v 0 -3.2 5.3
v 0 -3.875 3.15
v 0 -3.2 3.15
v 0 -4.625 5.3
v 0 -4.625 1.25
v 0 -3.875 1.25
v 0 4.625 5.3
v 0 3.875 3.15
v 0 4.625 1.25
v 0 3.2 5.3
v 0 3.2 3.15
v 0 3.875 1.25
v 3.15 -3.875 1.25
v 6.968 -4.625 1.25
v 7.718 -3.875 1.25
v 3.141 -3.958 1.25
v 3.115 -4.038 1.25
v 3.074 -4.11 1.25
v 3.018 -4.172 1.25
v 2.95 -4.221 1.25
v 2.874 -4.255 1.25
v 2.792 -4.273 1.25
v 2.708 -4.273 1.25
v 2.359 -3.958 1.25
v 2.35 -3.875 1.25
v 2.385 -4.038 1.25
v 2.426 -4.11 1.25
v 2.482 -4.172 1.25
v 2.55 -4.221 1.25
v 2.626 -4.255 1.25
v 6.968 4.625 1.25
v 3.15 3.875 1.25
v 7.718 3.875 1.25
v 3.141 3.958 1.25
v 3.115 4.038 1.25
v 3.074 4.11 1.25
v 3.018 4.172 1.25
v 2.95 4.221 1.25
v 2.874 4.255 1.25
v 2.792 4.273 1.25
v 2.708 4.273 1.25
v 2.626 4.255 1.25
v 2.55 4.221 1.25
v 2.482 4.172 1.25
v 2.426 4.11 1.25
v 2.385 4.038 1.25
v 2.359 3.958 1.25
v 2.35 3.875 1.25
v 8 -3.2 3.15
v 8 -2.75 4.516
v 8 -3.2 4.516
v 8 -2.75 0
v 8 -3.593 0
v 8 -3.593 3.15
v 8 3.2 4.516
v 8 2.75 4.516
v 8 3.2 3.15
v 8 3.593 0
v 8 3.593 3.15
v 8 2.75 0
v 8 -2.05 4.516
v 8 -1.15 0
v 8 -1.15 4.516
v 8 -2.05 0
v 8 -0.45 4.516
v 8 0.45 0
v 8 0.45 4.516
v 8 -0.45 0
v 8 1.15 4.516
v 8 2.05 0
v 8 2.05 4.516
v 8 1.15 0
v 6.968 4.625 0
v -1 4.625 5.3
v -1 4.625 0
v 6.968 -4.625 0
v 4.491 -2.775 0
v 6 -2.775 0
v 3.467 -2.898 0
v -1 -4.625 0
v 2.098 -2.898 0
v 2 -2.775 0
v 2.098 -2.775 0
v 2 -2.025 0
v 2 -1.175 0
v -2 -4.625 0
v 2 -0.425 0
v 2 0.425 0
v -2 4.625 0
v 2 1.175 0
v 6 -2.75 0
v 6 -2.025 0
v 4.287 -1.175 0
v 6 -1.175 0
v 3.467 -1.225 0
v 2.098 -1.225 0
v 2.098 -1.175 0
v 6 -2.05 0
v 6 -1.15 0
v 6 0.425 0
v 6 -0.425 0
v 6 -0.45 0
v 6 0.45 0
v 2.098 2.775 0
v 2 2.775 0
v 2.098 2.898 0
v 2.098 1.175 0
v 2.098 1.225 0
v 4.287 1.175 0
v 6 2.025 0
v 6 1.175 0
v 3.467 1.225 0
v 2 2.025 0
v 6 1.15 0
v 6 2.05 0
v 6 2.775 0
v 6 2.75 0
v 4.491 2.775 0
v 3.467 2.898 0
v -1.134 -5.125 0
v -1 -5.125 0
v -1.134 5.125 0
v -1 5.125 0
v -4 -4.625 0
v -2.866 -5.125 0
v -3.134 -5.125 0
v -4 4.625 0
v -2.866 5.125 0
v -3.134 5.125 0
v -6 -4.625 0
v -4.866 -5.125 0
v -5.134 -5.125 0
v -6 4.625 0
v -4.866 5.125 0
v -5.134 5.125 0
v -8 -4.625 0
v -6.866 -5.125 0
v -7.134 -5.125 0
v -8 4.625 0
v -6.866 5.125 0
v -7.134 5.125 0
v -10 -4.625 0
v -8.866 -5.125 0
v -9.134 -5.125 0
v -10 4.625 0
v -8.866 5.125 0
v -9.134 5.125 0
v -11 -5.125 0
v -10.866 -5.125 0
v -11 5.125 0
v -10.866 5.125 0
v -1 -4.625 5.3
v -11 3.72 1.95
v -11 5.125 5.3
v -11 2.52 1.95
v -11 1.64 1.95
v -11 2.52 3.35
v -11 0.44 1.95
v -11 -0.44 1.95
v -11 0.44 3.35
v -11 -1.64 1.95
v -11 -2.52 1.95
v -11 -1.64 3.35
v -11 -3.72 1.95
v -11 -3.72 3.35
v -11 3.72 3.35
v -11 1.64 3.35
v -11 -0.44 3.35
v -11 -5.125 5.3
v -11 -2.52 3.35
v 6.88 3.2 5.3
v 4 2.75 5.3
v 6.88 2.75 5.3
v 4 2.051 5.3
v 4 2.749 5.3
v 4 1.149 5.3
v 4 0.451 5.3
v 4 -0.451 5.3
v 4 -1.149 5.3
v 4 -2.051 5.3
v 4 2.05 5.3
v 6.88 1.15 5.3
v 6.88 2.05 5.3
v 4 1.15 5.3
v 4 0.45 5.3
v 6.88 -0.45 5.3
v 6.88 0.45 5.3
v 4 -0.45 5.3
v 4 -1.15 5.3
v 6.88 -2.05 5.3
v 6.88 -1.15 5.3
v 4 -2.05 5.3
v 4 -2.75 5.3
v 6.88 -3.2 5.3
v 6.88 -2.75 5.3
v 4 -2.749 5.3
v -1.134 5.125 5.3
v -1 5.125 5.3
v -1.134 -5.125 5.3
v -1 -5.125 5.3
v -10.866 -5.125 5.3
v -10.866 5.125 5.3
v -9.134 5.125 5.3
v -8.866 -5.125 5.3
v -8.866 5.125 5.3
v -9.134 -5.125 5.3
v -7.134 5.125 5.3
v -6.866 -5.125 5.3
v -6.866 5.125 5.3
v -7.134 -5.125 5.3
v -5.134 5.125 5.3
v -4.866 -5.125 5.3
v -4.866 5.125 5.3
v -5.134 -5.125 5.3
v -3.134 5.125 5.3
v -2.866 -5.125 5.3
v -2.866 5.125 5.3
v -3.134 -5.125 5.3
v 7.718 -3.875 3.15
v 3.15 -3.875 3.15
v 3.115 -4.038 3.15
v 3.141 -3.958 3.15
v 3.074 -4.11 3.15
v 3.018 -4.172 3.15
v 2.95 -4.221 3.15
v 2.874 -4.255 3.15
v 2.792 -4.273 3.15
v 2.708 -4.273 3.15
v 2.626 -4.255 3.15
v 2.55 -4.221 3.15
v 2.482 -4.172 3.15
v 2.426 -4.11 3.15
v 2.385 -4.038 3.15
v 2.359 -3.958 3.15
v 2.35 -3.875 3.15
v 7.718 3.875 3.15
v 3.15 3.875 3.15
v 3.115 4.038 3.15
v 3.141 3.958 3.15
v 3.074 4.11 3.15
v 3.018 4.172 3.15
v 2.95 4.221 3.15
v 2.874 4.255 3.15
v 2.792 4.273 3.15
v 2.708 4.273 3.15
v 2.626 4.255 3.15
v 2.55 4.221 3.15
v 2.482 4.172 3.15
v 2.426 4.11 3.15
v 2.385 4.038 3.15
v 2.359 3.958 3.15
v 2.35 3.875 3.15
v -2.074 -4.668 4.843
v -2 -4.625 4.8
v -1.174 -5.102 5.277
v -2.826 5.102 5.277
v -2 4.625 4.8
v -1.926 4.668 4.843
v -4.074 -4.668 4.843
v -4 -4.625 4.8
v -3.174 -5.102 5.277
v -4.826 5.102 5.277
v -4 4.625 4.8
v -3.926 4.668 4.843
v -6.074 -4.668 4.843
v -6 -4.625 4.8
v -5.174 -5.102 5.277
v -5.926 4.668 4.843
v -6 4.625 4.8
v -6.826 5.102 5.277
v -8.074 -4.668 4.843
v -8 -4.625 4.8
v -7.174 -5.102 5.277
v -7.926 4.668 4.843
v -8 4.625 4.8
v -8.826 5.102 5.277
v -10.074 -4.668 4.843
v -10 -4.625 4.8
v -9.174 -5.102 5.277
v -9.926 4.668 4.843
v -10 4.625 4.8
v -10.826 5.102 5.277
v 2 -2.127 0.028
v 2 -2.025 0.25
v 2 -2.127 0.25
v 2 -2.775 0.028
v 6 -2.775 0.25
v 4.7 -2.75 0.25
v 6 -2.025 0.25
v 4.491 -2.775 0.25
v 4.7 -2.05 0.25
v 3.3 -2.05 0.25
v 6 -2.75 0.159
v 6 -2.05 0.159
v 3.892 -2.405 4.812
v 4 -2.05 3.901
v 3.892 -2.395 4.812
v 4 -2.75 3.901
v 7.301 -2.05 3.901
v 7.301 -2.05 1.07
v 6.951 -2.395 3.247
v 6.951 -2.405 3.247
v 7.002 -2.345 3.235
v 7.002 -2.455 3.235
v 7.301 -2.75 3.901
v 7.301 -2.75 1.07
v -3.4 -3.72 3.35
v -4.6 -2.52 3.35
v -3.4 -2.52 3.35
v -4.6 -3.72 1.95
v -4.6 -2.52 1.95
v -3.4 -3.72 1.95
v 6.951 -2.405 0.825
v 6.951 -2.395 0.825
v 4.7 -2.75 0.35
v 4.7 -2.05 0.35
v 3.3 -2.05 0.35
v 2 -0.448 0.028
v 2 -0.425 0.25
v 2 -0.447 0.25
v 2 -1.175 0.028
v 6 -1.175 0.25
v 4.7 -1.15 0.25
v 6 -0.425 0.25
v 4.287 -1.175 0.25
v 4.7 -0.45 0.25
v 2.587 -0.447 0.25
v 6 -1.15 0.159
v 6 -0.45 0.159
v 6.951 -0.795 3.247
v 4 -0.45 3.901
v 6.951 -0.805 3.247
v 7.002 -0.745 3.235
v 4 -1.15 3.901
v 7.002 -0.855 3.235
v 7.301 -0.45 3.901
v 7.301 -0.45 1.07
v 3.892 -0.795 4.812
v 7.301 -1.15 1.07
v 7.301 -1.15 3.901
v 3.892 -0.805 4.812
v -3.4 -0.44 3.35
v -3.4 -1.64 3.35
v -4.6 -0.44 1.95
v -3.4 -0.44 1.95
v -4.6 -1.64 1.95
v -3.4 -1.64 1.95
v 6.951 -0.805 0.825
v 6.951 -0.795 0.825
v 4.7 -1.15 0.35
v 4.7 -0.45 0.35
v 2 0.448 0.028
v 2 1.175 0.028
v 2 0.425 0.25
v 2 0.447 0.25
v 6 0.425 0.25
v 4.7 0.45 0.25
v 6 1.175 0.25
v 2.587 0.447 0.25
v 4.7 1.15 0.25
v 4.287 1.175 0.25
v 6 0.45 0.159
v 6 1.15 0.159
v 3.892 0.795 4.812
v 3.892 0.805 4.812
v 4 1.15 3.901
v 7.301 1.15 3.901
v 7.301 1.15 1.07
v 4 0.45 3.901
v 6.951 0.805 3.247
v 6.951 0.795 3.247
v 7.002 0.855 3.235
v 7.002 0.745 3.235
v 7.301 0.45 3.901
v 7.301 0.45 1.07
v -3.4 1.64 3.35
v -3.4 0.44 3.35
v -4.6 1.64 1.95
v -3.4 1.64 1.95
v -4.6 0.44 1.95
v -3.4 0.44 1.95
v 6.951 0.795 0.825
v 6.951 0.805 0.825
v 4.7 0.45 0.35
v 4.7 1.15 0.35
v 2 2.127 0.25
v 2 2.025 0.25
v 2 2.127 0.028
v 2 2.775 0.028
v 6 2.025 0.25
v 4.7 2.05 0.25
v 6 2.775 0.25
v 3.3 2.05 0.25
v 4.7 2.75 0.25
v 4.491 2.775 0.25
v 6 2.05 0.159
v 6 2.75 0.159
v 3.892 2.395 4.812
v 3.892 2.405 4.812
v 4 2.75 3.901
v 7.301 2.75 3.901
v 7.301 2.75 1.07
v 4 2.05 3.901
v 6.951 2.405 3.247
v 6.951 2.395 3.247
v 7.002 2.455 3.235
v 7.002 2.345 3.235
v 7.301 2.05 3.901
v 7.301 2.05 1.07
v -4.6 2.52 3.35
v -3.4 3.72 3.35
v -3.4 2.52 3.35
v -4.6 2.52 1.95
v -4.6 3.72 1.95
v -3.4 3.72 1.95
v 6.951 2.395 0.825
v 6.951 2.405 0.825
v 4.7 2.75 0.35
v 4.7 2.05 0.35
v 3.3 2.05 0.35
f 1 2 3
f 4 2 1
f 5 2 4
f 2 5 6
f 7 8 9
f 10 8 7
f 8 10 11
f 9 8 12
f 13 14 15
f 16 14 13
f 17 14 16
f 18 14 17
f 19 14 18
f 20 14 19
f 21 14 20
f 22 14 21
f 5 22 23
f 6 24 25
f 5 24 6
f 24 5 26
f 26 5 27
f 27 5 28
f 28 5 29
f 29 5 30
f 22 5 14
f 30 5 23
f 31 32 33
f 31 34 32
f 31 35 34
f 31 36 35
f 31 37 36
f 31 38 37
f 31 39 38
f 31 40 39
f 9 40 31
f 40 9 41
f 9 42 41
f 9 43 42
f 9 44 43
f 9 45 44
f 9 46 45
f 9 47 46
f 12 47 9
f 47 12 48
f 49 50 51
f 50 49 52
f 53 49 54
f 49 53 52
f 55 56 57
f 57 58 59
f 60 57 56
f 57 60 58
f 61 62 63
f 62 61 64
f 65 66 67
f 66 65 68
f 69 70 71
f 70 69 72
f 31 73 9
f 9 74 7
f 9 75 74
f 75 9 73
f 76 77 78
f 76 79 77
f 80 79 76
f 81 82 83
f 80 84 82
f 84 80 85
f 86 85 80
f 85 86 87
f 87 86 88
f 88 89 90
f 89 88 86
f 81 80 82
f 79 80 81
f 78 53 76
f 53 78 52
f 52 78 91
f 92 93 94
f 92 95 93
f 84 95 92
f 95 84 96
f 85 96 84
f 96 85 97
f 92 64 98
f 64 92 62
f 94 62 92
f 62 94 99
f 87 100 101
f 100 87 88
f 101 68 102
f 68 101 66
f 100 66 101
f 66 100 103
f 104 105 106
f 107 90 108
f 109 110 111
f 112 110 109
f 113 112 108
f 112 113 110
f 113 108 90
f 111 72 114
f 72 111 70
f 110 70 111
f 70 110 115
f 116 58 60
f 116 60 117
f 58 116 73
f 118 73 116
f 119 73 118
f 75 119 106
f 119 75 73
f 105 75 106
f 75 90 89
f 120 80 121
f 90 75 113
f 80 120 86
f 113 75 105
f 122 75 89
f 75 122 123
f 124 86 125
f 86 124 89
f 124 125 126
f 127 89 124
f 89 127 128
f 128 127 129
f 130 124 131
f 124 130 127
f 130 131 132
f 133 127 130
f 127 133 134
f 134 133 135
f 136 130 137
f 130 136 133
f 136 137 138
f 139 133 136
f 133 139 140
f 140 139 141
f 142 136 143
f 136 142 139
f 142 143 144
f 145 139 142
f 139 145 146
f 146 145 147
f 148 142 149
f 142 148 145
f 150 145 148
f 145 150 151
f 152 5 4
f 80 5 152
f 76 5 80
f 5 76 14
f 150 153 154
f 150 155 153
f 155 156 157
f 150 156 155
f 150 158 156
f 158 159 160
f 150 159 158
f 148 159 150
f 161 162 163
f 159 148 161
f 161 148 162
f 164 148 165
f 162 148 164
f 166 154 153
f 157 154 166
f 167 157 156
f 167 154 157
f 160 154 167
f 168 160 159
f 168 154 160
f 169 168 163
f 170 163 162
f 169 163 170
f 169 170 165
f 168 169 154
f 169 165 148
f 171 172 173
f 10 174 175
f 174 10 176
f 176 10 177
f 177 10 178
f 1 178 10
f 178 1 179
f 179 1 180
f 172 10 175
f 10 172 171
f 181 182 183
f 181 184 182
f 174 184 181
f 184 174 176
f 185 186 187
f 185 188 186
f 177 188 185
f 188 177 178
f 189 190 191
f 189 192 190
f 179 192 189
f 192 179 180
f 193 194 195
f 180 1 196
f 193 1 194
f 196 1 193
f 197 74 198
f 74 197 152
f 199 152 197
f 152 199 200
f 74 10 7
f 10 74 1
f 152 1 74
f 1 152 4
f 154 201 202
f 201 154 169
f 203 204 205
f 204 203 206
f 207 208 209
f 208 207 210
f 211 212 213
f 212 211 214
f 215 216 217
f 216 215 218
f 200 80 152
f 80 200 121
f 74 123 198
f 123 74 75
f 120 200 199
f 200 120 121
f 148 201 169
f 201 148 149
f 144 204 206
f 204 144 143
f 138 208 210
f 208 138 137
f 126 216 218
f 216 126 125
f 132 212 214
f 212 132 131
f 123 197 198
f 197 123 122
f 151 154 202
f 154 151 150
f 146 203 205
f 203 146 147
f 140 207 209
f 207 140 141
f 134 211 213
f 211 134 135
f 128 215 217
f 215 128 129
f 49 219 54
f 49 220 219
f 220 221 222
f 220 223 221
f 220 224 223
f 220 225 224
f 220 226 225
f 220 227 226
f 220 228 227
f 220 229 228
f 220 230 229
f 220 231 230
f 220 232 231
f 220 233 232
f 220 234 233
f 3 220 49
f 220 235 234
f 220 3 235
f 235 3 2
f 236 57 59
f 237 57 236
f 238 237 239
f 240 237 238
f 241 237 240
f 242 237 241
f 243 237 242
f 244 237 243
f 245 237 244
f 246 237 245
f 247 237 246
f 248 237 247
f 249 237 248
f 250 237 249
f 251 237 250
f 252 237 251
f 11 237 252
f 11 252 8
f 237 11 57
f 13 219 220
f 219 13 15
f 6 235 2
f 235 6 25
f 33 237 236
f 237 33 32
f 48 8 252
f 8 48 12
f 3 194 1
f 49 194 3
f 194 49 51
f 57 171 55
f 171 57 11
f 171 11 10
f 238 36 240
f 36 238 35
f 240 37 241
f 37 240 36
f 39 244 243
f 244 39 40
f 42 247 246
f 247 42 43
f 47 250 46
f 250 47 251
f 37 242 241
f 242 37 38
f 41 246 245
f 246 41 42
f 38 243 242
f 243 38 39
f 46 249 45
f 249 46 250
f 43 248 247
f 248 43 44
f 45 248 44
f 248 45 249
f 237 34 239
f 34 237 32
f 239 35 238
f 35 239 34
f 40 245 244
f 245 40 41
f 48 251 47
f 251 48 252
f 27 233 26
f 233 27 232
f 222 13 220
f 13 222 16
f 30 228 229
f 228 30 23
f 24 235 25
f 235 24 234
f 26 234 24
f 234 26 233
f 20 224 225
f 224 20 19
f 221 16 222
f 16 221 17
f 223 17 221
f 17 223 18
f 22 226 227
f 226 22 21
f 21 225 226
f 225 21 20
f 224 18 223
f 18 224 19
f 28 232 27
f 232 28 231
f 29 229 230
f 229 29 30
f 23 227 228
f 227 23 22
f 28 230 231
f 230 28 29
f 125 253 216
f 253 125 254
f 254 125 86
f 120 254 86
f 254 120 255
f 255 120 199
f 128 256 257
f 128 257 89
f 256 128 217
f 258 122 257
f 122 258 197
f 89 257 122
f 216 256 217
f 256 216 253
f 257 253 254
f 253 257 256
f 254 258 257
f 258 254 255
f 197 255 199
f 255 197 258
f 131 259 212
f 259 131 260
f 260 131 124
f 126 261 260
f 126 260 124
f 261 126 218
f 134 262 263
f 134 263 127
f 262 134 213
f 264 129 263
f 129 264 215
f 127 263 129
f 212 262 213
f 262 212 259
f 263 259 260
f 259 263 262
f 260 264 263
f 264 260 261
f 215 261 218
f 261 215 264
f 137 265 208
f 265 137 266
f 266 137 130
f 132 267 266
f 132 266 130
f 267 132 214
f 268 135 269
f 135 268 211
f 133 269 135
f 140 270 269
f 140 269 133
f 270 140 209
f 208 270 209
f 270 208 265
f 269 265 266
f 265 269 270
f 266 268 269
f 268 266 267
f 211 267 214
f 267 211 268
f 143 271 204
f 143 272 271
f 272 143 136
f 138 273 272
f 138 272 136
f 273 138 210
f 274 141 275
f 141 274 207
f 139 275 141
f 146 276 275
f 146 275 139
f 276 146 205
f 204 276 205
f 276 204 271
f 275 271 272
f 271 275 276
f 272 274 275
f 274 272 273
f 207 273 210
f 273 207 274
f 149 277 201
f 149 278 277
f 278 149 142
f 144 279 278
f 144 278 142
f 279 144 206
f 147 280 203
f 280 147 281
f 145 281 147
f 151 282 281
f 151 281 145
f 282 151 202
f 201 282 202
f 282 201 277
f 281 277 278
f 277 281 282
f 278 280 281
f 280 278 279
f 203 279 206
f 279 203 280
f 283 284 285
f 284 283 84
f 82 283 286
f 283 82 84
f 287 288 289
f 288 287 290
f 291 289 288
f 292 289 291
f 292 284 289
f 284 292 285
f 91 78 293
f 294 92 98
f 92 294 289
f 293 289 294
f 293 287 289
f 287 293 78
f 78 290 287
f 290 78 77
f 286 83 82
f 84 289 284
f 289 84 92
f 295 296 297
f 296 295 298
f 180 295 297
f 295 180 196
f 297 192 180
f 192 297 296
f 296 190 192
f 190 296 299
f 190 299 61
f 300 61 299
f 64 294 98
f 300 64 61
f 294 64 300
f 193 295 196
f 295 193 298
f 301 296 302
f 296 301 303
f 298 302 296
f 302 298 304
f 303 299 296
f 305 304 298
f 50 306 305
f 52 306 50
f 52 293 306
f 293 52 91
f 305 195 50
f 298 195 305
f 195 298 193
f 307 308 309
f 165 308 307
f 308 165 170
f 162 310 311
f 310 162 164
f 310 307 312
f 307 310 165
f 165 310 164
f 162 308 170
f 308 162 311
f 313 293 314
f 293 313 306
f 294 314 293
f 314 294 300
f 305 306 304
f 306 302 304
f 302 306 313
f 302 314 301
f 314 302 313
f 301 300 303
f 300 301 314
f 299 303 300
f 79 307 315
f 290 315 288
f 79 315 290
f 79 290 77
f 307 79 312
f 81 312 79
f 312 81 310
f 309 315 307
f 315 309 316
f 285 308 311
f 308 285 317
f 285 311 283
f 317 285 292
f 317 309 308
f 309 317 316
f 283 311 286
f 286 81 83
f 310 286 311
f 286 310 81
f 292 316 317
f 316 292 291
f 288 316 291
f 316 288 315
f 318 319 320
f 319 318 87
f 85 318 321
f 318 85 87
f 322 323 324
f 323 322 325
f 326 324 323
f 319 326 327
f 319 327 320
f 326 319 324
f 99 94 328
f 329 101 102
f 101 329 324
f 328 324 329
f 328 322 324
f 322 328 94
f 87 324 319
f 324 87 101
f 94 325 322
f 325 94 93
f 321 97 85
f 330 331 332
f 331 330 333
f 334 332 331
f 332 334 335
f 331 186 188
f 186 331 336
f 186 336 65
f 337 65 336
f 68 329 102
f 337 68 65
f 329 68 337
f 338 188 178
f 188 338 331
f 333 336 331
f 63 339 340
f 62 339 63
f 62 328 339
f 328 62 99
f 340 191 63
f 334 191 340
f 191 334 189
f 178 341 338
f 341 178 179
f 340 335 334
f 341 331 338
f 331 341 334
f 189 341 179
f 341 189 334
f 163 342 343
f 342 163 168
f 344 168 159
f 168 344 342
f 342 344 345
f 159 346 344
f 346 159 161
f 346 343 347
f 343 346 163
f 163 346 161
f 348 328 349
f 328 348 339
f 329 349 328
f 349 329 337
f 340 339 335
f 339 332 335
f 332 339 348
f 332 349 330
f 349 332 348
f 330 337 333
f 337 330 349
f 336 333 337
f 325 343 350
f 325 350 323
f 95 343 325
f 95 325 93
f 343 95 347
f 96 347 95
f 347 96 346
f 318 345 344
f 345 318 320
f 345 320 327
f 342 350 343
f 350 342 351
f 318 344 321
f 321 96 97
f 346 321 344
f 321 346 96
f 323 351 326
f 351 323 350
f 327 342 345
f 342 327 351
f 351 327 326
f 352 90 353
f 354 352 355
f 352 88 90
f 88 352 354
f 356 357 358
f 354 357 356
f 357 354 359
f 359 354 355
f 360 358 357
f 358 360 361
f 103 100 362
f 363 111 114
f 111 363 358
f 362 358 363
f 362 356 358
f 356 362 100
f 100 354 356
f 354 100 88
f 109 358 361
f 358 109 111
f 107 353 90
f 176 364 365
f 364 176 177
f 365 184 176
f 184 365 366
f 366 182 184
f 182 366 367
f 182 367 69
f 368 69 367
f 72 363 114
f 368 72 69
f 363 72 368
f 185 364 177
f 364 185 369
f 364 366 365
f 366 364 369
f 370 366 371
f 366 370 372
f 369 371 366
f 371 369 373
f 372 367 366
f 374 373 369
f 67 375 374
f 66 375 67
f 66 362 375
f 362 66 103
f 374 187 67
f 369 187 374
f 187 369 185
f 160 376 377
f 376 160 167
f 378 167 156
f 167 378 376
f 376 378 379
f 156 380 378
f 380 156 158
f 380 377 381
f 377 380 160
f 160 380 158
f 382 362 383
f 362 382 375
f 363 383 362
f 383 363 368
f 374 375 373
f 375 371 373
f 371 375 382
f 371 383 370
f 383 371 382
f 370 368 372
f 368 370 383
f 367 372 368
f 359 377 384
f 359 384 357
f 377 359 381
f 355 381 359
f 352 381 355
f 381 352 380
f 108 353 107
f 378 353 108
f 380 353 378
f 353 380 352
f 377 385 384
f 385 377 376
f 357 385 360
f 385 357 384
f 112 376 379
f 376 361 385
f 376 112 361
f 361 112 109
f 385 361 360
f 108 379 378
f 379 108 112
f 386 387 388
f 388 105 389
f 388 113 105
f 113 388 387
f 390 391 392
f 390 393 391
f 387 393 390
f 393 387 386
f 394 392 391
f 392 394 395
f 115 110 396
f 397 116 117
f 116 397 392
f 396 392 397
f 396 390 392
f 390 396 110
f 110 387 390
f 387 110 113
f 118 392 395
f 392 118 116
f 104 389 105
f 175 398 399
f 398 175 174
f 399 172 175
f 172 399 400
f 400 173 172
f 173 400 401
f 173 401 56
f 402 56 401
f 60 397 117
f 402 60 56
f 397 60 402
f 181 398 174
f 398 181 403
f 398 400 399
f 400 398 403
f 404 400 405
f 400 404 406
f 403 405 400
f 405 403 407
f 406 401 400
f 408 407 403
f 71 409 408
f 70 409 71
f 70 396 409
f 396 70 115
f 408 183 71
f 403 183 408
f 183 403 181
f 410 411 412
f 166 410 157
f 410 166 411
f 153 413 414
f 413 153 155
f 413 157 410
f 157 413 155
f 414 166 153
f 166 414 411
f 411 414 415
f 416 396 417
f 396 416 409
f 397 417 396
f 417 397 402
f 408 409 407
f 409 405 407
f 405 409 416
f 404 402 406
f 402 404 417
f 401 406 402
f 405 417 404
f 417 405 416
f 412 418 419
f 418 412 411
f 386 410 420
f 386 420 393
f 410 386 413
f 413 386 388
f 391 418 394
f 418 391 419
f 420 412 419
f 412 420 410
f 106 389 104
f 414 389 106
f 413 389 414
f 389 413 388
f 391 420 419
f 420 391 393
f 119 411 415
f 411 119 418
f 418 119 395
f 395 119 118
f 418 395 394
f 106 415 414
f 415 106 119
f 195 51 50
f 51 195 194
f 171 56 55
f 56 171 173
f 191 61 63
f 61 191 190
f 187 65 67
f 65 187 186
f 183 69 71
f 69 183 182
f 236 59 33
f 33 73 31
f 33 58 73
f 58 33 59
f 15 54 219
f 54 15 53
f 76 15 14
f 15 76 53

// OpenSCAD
// SPC serial connector wire guide. 
// Design by Marius Gheorghescu, Oct 2018
//
// Suggested print settings: flexible filament, 0.15mm layer height
//

// bottom to top
top_height = 5.3;
top_width = 6.4;

clip_height = 3.15;
clip_width = 7.75;

base_height = 1.25;
base_width = 9.25;

connector_depth = 8;

retention_clip_depth = 2.75;
retention_clip_radius = 0.4;

epsilon = 0.001;

pin_spacing = 1.6;

pin_depth = 0.5;
pin_width = 0.75;

pin_spacing_connector = 2.6;

module wire_connector()
{
    wire_dia_coated_x = 1.2;
    wire_dia_coated_z = 1.4;
    wire_dia = 0.7;
    wire_spacing_factor = 1.3;
    
    grip_depth = 10;
    
    difference() {

        $fn = 30;
        
        union() {
            
            // base
            translate([connector_depth/2,0,base_height/2])
                cube([connector_depth, base_width, base_height], center=true);

            // grip
            translate([-grip_depth/2 - 1,0, top_height/2])
                cube([grip_depth, base_width+1, top_height], center=true);
            
            translate([-grip_depth/2,0, top_height/2])
                cube([grip_depth, base_width, top_height], center=true);
            
            // mid-point block
            translate([connector_depth/2,0,clip_height/2])
                cube([connector_depth, clip_width, clip_height], center=true);

            // top block
            translate([connector_depth/2,0,top_height/2])
                cube([connector_depth, top_width, top_height], center=true);
            
            // retention clips
            color("red")
            translate([retention_clip_depth, clip_width/2, clip_height/2])
                cylinder(r=retention_clip_radius, h=clip_height, center=true);

            color("red")
            translate([retention_clip_depth, -clip_width/2, clip_height/2])
                cylinder(r=retention_clip_radius, h=clip_height, center=true);
        }
        
        // see-through cut-out
        // translate([-10,-10,0]) cube([20,20,20], center=true);

        // front chamfer 
        rotate([0,35,0])
        translate([connector_depth/2,0,top_height + top_height/2 + 1])
            cube([connector_depth, top_width+epsilon, top_height/4], center=true);
        

        // chamfer corners
        {
            translate([connector_depth, base_width, top_height/2 - epsilon])
            rotate([0,0,45])
            cube([connector_depth, base_width, top_height], center=true);

            translate([connector_depth, -base_width, top_height/2 - epsilon])
            rotate([0,0,-45])
            cube([connector_depth, base_width, top_height], center=true);
        }        

        // ribs
        for(i=[1:2:grip_depth]) {
            translate([-1-i,-base_width/2-1,top_height/2])
                rotate([0,0,-30])
                cylinder(r=1, h=top_height+epsilon, $fn=6, center=true);

            translate([-1-i,base_width/2+1,top_height/2])
                rotate([0,0,30])
                cylinder(r=1, h=top_height+epsilon, $fn=6, center=true);


            translate([-1-i,0,top_height+0.5])
            rotate([0,90,90])
                cylinder(r=1, h=base_width+2, $fn=6, center=true);
        }

        // pin contact area guide
        // translate([connector_depth - 2.45,0,0])%cube([2.40, 5.54, 1], center=true);
        
        for(i=[-1.5:1:1.5]) {

            // contact channels
            #translate([connector_depth/2, i*pin_spacing, 0])
                cube([connector_depth/2, pin_width, pin_depth], center=true);

            // top attach
            hull() {
            translate([connector_depth*0.75, i*pin_spacing, top_height - wire_dia_coated_z/2 + epsilon])
                cube([connector_depth/2, wire_dia, wire_dia_coated_z], center=true);

            translate([connector_depth*0.75, i*pin_spacing, top_height - wire_dia_coated_z/2 + epsilon])
                rotate([0,25,0])
                cube([connector_depth/2, 0.01, wire_dia_coated_z], center=true);
            }

            // slicer path width guide
            //translate([0, -top_width/2 + 0.2,0])
            //%color("blue", 0.2) cube([20, 0.4, top_height*1.5], center=true);

            // through wires
            translate([-connector_depth - epsilon, i*pin_spacing*wire_spacing_factor, top_height/2])
                cube([connector_depth, wire_dia_coated_x, wire_dia_coated_z], center=true);

            // front contact lift 
            translate([connector_depth - 1, i*pin_spacing, pin_depth/2 - epsilon])
                rotate([0,-35,0])
                cube([connector_depth, wire_dia, 2*pin_depth], center=true);

            // wire front channel
            hull() {
                translate([connector_depth - wire_dia/2 + epsilon, i*pin_spacing, 0])
                    cube([wire_dia, wire_dia, wire_dia], center=true);

                hull() {
                    translate([connector_depth - wire_dia/2 + epsilon, i*pin_spacing, top_height/2])
                        cube([wire_dia, wire_dia, top_height], center=true);
                    translate([connector_depth - wire_dia/2 + epsilon, i*pin_spacing, top_height/2])
                        cube([wire_dia*2, 0.01, top_height], center=true);
                }
            }

            // back
            #hull() {
                translate([connector_depth/2, i*pin_spacing, 0])
                    cube([2*wire_dia, wire_dia, wire_dia], center=true);

                translate([-connector_depth/2, i*pin_spacing*wire_spacing_factor, top_height/2])
                    cube([wire_dia_coated_x, wire_dia_coated_x, wire_dia_coated_z], center=true);
            }

        }
    }
}

color("green")
    wire_connector();
